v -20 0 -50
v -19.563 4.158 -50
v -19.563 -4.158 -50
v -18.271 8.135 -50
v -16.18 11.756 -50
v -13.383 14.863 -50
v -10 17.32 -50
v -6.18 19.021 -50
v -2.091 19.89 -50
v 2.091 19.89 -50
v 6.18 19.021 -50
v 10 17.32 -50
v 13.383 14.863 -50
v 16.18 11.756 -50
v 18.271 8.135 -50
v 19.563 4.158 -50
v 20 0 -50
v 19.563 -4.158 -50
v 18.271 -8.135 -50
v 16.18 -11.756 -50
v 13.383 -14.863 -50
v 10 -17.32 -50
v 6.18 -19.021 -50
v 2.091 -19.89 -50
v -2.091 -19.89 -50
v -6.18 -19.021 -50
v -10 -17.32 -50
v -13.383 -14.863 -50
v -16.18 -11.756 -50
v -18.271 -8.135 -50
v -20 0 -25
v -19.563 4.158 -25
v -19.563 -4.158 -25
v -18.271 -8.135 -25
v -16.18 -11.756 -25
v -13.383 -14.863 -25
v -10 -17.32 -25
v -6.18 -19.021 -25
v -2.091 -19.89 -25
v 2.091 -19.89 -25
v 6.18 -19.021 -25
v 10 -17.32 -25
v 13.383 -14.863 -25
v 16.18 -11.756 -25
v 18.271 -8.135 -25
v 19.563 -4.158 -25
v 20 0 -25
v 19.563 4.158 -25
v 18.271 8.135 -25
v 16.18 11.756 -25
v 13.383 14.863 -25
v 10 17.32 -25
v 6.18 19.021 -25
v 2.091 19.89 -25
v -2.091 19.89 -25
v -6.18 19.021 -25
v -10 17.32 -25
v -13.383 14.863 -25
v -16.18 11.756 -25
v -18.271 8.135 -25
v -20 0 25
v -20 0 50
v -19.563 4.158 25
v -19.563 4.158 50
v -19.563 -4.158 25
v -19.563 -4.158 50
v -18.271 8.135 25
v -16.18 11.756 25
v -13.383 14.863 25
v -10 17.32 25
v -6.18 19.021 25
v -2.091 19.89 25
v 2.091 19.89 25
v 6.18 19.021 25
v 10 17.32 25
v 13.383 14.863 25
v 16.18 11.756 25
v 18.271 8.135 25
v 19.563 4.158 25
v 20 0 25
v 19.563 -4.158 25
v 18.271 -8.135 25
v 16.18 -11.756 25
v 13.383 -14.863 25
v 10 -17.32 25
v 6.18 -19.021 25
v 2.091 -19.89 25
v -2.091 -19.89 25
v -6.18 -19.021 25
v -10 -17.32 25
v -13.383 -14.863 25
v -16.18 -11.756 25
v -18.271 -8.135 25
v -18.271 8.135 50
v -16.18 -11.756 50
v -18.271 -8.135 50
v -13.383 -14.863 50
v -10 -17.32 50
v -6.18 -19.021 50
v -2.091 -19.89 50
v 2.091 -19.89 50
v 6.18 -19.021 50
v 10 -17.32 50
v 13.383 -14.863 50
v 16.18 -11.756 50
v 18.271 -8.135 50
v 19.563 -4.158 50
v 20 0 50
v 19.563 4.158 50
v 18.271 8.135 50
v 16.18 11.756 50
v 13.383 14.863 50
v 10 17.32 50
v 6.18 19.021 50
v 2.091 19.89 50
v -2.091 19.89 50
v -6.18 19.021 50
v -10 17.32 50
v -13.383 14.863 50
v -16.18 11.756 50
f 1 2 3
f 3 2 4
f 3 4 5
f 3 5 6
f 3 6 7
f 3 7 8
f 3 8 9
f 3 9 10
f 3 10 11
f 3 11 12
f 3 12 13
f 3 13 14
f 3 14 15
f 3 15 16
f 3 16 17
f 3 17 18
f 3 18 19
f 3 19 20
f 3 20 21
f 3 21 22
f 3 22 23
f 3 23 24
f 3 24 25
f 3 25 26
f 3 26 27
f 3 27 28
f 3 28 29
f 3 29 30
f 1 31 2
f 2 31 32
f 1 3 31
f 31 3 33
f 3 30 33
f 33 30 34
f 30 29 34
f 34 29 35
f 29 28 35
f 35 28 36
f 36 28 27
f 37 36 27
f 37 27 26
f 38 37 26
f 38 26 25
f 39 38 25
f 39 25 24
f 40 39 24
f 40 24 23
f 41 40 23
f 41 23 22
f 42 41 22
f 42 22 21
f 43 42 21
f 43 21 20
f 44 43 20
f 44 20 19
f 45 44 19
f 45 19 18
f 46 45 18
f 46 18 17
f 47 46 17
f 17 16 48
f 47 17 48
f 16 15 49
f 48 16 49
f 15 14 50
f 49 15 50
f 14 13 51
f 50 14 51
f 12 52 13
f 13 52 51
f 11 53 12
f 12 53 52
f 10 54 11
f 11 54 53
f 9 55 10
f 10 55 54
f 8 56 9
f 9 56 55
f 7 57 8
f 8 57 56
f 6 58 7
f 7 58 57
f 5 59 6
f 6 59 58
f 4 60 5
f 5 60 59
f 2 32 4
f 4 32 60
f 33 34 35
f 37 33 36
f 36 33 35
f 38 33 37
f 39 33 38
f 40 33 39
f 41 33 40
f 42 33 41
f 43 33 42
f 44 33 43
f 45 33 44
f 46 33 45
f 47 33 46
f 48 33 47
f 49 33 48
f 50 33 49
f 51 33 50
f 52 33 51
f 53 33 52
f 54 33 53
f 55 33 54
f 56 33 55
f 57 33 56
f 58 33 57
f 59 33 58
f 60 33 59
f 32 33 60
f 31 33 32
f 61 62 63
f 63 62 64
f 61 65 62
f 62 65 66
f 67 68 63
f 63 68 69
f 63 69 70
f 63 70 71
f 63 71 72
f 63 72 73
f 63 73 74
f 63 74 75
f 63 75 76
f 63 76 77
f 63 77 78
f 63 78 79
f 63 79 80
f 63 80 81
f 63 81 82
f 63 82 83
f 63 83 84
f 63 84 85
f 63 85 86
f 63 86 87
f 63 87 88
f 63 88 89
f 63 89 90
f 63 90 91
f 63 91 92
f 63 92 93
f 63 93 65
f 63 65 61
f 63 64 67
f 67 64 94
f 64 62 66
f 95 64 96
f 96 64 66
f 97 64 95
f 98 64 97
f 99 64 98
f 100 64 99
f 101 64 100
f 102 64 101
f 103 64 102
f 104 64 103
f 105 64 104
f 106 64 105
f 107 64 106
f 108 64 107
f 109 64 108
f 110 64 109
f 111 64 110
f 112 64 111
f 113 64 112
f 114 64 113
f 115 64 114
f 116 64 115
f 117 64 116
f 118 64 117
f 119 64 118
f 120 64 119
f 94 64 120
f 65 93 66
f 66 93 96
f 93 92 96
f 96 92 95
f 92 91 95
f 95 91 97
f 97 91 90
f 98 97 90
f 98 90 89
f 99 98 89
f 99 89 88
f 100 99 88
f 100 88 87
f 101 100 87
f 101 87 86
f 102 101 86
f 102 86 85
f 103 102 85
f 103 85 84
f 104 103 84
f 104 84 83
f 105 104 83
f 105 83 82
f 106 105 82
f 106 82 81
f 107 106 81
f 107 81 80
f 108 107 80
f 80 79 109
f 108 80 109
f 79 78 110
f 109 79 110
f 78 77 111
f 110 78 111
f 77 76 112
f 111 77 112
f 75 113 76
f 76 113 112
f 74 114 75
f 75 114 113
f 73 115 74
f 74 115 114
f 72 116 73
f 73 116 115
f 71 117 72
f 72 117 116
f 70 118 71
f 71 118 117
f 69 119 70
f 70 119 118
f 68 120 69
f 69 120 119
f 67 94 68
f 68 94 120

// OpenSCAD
difference() {
    cylinder(r=20, h=100, center=true);
    cube(50, center=true);
}
